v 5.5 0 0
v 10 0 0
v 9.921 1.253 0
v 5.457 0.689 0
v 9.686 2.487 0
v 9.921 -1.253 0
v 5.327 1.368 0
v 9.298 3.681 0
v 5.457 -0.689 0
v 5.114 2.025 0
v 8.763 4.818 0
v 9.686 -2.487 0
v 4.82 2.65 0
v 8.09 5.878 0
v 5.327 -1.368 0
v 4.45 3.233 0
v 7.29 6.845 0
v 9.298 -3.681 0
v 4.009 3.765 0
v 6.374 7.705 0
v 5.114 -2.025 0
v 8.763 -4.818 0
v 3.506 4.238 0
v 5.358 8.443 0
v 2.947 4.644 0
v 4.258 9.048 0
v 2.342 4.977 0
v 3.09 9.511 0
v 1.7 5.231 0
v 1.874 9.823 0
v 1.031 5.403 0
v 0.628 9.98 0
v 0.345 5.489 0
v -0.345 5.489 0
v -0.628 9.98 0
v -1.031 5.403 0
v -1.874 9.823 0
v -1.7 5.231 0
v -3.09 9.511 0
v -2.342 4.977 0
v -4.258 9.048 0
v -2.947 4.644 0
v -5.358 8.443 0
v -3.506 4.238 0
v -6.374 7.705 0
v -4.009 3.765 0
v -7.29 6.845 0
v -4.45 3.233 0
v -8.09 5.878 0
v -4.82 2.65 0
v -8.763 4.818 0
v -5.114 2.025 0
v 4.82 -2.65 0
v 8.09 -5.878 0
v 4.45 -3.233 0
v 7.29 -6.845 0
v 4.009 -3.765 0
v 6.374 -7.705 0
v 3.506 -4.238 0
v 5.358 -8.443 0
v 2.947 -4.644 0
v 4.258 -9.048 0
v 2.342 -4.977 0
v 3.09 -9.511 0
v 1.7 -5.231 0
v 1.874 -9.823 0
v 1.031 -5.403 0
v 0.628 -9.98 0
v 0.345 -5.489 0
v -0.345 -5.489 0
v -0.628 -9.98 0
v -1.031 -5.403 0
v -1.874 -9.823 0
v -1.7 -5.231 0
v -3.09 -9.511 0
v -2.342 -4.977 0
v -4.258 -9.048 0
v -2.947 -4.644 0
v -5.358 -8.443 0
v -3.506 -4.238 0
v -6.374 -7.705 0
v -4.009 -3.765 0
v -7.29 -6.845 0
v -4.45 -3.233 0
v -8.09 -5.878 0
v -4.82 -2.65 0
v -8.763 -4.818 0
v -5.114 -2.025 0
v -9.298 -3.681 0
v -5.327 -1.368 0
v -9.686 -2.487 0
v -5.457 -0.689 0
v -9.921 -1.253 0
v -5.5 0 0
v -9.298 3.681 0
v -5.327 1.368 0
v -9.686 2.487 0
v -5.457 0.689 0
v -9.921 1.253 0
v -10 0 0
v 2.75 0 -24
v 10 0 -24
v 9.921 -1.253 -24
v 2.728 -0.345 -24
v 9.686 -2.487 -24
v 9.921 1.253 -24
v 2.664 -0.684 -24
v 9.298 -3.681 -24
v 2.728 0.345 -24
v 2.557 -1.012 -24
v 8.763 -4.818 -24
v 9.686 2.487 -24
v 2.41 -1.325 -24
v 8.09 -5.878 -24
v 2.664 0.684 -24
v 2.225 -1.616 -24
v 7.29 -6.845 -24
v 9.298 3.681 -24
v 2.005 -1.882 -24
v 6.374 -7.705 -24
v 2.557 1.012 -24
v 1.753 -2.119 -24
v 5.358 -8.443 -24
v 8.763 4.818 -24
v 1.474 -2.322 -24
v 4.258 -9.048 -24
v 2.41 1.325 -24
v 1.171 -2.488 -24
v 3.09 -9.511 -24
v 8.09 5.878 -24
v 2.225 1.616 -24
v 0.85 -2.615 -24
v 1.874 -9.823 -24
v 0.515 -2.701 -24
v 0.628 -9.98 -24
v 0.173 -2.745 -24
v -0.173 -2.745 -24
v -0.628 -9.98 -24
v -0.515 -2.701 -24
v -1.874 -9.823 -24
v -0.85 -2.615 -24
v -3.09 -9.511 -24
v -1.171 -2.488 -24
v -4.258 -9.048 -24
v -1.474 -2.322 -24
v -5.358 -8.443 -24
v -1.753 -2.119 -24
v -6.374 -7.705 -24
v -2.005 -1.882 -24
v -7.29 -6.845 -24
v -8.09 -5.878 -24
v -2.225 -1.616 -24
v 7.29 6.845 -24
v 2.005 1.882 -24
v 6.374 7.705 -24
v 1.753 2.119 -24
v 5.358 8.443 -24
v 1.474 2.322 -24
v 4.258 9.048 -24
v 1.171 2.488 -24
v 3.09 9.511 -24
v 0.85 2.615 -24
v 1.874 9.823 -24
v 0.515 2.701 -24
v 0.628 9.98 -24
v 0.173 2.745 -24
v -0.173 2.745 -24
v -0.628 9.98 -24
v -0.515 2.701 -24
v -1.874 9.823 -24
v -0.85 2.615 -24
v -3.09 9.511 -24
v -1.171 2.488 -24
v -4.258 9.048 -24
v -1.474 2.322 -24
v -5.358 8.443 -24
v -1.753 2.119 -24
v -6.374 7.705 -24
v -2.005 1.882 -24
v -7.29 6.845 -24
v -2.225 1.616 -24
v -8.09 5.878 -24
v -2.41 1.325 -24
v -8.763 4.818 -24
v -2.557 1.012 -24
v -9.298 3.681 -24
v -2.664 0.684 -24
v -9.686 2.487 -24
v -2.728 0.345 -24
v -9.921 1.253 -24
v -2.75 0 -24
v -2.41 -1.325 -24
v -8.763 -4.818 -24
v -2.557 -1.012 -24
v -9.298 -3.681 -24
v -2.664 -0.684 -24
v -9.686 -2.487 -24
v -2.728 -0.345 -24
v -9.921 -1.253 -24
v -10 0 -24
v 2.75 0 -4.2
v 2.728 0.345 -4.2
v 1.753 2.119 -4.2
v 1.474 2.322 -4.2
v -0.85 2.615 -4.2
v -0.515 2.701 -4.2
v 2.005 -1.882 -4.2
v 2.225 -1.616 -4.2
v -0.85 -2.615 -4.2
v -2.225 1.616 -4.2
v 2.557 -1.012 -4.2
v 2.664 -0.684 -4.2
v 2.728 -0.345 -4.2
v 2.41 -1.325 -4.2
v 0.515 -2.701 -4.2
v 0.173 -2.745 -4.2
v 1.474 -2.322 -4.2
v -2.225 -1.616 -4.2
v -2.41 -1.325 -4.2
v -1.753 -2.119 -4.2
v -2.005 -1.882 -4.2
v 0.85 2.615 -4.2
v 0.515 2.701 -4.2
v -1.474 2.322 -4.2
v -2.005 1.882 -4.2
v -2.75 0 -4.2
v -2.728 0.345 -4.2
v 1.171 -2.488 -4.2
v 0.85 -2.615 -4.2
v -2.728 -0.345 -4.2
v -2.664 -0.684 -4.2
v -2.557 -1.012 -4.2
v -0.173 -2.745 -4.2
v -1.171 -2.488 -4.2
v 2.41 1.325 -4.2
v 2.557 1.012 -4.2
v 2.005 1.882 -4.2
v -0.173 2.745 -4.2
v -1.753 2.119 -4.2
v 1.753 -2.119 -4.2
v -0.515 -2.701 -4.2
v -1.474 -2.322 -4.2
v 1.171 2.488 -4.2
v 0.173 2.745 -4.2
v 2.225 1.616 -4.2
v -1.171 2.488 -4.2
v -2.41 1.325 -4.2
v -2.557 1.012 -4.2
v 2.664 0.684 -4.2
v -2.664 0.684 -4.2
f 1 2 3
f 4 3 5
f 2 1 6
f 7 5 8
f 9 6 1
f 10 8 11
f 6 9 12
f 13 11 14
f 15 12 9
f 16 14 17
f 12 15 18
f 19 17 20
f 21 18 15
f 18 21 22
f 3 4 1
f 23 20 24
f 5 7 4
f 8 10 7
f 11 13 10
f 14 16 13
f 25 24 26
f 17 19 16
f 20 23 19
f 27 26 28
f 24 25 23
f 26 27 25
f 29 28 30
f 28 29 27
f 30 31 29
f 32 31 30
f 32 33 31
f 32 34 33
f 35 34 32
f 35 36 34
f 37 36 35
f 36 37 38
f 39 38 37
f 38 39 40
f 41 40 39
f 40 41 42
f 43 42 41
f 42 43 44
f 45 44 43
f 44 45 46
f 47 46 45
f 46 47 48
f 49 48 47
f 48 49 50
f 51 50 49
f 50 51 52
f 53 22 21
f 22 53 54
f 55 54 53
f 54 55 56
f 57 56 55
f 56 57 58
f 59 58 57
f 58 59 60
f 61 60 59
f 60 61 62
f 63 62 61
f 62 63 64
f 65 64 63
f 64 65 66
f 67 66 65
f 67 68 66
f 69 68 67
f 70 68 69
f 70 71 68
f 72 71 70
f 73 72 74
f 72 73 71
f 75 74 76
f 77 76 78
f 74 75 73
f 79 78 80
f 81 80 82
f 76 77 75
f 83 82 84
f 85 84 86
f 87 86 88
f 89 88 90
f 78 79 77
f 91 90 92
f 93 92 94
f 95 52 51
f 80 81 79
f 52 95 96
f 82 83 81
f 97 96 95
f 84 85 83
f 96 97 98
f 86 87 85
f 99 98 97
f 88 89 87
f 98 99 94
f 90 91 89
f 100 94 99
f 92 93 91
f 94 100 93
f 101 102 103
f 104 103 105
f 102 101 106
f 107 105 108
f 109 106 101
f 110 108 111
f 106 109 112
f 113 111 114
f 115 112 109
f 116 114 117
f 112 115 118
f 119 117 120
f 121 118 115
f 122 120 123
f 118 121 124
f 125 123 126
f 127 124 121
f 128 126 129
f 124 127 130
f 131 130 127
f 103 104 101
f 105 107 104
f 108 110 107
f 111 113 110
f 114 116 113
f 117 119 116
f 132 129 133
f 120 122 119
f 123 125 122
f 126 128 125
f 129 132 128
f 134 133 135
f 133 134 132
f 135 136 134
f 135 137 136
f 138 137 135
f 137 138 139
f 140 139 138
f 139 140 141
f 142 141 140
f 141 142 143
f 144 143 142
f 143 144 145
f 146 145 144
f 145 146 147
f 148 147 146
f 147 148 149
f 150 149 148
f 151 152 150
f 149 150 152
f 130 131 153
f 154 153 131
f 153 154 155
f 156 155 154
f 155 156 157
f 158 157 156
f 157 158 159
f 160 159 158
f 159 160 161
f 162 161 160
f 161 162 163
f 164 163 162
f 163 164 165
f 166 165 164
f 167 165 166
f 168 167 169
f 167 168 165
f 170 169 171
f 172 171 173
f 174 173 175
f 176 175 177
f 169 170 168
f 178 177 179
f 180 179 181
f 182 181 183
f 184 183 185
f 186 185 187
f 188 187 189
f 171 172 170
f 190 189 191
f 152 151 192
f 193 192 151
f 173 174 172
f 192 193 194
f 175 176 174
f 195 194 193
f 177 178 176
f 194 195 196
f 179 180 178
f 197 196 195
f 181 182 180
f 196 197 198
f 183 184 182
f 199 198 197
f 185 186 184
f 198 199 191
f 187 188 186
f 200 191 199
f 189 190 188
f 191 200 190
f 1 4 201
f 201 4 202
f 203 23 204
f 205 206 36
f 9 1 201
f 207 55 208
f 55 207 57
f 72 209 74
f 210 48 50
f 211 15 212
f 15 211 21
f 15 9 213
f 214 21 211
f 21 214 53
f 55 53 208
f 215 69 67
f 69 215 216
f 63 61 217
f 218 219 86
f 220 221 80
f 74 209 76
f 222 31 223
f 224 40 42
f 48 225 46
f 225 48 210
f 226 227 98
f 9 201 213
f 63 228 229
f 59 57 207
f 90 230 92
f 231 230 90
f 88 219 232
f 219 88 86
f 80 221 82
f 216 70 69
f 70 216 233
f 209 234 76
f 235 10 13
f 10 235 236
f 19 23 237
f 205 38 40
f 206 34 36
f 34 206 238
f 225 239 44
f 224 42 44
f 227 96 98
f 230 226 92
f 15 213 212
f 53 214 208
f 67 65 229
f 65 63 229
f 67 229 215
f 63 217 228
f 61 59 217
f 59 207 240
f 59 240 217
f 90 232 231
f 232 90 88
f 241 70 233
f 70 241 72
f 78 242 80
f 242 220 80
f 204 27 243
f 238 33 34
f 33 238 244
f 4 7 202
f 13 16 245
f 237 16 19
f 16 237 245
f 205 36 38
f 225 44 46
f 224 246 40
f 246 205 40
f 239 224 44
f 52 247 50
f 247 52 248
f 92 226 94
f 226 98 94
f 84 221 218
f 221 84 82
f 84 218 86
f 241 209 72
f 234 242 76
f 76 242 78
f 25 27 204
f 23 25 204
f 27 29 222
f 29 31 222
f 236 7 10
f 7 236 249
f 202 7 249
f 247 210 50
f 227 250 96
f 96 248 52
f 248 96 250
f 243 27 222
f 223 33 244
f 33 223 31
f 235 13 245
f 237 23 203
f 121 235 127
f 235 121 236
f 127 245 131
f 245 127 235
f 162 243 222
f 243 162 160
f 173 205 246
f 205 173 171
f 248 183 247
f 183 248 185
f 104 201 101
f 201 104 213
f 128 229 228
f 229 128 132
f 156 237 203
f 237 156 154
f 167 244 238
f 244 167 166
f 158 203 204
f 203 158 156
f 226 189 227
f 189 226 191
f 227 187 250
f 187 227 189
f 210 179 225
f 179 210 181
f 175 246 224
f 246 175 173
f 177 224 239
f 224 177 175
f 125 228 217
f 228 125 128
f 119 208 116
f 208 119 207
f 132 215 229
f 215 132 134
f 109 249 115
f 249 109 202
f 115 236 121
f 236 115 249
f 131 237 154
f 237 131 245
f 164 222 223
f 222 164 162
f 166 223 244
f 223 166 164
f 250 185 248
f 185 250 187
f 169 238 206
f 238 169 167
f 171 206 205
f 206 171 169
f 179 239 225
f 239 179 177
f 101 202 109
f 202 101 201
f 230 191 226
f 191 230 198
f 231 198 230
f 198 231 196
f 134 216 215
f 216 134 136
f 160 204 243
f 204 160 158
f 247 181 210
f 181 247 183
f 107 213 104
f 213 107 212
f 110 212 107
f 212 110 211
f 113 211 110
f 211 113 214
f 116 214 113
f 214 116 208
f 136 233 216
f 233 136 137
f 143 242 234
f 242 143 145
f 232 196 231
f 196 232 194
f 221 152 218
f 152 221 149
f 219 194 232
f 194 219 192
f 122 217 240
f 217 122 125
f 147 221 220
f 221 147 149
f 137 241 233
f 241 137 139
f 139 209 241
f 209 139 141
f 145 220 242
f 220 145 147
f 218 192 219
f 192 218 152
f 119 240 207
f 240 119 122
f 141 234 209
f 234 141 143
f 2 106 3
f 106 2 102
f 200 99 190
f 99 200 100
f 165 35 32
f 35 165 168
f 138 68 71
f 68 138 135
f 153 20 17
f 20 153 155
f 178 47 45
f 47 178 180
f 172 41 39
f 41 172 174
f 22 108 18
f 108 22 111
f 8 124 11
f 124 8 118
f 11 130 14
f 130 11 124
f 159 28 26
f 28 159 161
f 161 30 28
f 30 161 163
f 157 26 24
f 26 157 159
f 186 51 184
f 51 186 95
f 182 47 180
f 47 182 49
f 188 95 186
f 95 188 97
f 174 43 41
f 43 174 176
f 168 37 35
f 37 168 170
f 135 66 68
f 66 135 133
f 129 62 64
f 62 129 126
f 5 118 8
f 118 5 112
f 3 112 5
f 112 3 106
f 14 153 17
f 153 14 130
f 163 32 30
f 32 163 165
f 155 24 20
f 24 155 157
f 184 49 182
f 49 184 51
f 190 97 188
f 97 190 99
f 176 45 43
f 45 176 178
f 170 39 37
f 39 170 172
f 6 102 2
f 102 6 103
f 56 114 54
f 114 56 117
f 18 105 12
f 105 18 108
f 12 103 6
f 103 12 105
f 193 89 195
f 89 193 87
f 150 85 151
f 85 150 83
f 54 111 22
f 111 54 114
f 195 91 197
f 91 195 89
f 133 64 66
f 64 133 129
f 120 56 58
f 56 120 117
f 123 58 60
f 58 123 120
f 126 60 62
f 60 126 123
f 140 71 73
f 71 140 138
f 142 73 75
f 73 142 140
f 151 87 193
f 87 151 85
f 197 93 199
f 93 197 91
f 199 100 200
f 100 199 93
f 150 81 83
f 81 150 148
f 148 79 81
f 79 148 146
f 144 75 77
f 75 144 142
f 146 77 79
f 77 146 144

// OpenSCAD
$fn = 50;


difference() {
	union() {
		translate(v = [0, 0, -24.0000000000]) {
			cylinder(h = 24, r = 10.0000000000);
		}
		cylinder(h = 0, r = 20.0000000000);
	}
	union() {
		translate(v = [0, 0, 0]) {
			rotate(a = [0, 0, 0]) {
				difference() {
					union() {
						#translate(v = [0, 0, -24.0000000000]) {
							cylinder(h = 24, r = 2.2500000000);
						}
						#translate(v = [0, 0, -4.2000000000]) {
							cylinder(h = 4.2000000000, r1 = 2.7500000000, r2 = 5.5000000000);
						}
						#translate(v = [0, 0, -24.0000000000]) {
							cylinder(h = 24, r = 2.7500000000);
						}
						#translate(v = [0, 0, -24.0000000000]) {
							cylinder(h = 24, r = 2.2500000000);
						}
					}
					union();
				}
			}
		}
	}
}
